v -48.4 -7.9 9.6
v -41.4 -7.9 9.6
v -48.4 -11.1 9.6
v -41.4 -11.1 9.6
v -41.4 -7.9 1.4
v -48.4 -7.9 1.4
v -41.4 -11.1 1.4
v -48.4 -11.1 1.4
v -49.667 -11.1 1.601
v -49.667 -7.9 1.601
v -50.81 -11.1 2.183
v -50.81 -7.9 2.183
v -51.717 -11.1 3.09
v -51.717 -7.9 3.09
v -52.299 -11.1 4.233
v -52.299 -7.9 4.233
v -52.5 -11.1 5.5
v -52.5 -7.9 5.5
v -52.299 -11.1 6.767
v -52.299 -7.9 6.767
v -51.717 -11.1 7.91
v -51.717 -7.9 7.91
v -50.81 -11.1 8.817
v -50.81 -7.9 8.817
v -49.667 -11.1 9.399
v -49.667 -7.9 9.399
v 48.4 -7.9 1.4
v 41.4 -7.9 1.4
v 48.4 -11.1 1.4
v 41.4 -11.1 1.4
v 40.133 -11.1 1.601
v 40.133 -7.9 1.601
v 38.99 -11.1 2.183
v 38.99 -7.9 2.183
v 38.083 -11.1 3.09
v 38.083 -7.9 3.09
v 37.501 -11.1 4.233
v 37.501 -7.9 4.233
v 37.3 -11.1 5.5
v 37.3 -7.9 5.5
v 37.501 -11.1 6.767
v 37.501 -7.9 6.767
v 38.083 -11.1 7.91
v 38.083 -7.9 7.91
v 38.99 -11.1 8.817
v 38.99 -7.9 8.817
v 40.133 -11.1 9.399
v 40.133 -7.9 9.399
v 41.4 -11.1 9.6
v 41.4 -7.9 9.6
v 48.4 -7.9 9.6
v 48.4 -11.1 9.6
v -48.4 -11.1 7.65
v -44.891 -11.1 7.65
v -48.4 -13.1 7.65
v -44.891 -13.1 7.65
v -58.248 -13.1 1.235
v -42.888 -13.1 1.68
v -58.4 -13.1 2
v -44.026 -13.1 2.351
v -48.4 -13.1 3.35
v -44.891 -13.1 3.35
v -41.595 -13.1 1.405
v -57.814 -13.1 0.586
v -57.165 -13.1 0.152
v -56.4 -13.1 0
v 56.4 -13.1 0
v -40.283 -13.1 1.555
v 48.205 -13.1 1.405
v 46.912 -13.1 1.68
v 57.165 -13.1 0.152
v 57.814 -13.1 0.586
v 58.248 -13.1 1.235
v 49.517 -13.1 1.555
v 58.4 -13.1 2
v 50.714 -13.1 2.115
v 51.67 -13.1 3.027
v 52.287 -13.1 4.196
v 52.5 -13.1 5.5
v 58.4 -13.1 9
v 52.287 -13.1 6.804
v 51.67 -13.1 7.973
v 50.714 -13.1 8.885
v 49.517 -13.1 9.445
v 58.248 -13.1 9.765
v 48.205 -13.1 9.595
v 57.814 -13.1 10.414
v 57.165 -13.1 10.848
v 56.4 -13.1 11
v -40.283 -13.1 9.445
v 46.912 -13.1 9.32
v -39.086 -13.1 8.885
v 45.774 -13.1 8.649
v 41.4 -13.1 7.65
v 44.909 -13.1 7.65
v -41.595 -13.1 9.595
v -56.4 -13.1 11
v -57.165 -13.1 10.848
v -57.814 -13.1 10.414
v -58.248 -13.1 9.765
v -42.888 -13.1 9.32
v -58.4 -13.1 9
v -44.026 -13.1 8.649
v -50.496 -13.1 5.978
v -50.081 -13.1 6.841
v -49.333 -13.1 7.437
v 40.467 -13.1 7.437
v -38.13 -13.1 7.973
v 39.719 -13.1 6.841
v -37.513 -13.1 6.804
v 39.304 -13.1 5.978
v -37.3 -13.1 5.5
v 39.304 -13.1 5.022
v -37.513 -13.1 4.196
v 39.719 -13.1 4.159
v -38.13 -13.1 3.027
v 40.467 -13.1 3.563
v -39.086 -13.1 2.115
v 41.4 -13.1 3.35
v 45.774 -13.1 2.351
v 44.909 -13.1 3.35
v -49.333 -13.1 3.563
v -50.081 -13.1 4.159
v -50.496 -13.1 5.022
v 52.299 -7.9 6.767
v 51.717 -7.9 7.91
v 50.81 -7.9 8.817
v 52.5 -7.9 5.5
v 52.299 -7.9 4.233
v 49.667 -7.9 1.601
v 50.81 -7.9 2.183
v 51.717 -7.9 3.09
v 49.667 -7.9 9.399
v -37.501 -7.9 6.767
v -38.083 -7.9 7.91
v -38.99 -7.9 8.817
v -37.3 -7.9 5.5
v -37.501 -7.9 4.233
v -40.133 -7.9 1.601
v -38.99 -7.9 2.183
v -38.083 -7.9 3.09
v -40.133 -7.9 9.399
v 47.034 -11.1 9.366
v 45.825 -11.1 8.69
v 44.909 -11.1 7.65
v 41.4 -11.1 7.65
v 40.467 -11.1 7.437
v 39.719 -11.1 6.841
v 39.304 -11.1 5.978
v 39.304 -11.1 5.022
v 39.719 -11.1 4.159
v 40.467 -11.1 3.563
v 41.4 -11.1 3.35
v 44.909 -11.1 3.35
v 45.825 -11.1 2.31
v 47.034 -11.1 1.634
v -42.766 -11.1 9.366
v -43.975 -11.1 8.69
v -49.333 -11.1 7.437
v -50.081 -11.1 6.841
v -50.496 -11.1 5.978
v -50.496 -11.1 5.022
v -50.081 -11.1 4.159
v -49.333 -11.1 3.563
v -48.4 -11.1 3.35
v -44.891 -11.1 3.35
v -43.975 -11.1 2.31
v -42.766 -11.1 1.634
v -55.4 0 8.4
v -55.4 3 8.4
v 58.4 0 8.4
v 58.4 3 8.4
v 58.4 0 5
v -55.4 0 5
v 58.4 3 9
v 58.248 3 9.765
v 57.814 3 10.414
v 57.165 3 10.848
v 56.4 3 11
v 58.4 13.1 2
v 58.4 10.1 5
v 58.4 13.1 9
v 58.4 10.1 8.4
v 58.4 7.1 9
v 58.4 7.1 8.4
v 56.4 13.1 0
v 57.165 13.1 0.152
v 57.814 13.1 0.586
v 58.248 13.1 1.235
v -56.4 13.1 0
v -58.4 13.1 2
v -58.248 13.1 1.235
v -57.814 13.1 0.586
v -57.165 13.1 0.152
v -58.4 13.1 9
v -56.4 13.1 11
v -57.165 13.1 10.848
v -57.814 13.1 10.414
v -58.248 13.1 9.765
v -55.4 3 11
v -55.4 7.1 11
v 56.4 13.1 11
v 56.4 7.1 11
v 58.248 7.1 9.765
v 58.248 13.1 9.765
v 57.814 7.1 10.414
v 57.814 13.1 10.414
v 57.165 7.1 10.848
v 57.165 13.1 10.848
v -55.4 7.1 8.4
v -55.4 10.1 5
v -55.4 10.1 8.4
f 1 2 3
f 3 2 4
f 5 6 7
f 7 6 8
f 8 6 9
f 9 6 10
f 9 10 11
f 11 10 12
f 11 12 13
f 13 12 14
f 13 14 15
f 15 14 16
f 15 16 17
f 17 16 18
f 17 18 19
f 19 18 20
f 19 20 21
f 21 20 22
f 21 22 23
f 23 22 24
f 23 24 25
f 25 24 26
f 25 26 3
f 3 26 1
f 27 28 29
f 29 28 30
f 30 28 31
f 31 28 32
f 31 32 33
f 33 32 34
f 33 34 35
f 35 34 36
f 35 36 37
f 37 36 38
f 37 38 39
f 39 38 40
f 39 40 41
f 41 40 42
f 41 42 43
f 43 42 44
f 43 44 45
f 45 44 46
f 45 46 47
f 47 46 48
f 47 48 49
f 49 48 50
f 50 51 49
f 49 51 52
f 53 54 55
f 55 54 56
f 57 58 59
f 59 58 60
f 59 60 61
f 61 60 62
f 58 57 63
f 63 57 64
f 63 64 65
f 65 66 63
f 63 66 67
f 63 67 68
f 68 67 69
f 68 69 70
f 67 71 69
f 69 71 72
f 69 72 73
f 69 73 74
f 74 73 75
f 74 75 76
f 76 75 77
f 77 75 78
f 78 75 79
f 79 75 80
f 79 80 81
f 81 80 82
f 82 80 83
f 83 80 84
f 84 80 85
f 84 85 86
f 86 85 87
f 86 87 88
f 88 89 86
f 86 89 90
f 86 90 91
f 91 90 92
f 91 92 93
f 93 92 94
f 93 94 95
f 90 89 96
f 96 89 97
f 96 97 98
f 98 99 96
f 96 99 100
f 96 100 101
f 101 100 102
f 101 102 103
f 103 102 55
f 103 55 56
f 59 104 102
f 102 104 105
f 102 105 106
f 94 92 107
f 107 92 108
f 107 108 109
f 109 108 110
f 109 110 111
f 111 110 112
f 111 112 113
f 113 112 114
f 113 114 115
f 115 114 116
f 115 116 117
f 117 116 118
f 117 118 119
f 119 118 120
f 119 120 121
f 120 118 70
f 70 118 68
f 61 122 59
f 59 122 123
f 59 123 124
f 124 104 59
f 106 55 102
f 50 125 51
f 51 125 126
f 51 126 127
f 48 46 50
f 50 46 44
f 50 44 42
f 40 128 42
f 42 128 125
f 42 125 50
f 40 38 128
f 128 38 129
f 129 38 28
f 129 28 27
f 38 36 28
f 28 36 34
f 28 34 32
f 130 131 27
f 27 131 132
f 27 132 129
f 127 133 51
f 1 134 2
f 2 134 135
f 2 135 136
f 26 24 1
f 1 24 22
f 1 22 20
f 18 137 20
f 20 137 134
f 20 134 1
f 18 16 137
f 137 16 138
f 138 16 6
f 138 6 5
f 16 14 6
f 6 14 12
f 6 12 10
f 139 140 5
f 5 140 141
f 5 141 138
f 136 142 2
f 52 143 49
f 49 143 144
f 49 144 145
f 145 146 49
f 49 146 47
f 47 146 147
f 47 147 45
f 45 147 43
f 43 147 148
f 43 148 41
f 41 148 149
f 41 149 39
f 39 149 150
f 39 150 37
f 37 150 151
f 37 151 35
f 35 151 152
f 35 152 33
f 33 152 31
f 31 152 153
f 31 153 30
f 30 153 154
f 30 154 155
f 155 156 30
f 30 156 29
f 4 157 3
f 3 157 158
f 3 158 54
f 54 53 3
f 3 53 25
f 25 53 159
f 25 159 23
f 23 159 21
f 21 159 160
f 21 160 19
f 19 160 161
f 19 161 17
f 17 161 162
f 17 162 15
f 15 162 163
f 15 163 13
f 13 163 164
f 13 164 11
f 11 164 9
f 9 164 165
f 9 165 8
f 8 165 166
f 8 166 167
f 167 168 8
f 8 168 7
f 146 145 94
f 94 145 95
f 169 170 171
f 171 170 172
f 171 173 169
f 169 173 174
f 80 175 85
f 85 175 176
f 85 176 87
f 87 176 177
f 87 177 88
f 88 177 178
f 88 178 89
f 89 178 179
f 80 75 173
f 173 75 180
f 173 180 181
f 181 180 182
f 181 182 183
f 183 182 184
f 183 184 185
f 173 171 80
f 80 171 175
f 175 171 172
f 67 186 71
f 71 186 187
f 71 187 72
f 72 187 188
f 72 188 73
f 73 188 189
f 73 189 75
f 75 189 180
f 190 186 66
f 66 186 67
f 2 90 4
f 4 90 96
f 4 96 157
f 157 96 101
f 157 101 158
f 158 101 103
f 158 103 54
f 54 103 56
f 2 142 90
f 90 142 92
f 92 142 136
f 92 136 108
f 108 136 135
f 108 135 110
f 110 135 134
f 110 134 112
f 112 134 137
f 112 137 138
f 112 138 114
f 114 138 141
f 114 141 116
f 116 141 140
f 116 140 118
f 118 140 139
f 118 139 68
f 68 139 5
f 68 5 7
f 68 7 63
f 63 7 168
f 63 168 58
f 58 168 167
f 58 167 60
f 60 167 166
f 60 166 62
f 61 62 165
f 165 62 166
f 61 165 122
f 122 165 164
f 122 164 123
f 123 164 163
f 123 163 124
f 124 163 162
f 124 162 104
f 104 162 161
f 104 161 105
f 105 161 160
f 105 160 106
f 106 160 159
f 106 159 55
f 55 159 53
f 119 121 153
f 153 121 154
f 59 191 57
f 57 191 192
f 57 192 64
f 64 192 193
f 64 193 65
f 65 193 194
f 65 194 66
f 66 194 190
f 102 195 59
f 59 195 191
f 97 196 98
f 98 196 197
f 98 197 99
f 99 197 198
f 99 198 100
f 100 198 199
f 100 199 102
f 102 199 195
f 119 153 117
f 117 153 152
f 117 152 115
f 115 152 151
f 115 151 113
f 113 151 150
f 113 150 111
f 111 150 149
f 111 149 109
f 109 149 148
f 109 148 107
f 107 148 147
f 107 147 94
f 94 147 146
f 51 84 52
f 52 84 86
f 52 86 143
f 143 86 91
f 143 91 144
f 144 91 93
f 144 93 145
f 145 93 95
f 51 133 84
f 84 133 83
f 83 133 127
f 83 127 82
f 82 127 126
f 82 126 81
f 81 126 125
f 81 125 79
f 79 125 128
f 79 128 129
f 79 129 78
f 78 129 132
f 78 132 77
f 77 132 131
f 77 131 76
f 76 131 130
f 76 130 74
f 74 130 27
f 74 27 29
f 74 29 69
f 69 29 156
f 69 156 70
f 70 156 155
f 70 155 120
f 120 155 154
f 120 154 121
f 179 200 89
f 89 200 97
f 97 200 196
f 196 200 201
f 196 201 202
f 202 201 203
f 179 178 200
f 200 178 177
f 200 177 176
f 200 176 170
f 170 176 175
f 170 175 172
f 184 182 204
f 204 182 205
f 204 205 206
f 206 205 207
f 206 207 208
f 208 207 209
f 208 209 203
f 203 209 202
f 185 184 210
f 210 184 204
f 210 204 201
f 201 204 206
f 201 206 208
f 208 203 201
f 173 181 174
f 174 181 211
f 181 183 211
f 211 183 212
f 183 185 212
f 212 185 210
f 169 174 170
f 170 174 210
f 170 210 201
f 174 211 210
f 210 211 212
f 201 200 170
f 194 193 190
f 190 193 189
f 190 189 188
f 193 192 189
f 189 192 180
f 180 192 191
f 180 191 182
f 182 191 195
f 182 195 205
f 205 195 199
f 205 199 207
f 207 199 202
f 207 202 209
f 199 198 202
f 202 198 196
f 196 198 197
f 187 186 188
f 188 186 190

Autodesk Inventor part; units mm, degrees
ref_plane "YZ Plane" through (0, 0, 0) normal (1, 0, 0) x (0, 1, 0)
ref_plane "XZ Plane" through (0, 0, 0) normal (0, 1, 0) x (-1, 0, 0)
ref_plane "XY Plane" through (0, 0, 0) normal (0, 0, 1) x (1, 0, 0)
sketch "Sketch1" plane through (0, 0, 0) normal (0, 0, 1) x (1, 0, 0)
  line L0 (58.4, 13.1) -> (-58.4, 13.1)
  line L1 (-58.4, 13.1) -> (-58.4, -13.1)
  line L2 (-58.4, -13.1) -> (58.4, -13.1)
  line L3 (58.4, -13.1) -> (58.4, 13.1)
  line L4 (58.4, 13.1) -> (-58.4, -13.1) construction
  line L5 (-58.4, 13.1) -> (58.4, -13.1) construction
  point P0 (0, 0)
  dimension "d0" = 116.8
  dimension "d1" = 26.2
extrude "Extrusion1" add sketch "Sketch1" along normal blind 11
sketch "Sketch2" plane through (58.4, -13.1, 0) normal (1, 0, 0) x (0, 0, -1)
  line L0 (0, 0) -> (0, 26.2) projected
  line L1 (0, 26.2) -> (-11, 26.2) projected
  line L2 (-11, 0) -> (-11, 26.2) projected
  line L3 (0, 0) -> (-11, 0) projected
  line L4 (-11, 26.2) -> (-11, 0) projected
  line L5 (-11, 26.2) -> (-5, 26.2)
  line L6 (-5, 26.2) -> (-5, 23.2)
  line L7 (-5, 23.2) -> (-11, 23.2)
  line L8 (-11, 23.2) -> (-11, 26.2)
  line L9 (-11, 23.2) -> (-8.4, 23.2)
  line L10 (-8.4, 23.2) -> (-8.4, 20.2)
  line L11 (-8.4, 20.2) -> (-11, 20.2)
  line L12 (-11, 20.2) -> (-11, 23.2)
  line L13 (-11, 26.2) -> (-5, 26.2)
  line L14 (-5, 26.2) -> (-5, 10.1)
  line L15 (-5, 10.1) -> (-11, 10.1)
  line L16 (-11, 10.1) -> (-11, 26.2)
  line L17 (-11, 10.1) -> (-5, 10.1)
  line L18 (-5, 10.1) -> (-5, 13.1)
  line L19 (-5, 13.1) -> (-11, 13.1)
  line L20 (-11, 13.1) -> (-11, 10.1)
  line L21 (-11, 13.1) -> (-8.4, 13.1)
  line L22 (-8.4, 13.1) -> (-8.4, 16.1)
  line L23 (-8.4, 16.1) -> (-11, 16.1)
  line L24 (-11, 16.1) -> (-11, 13.1)
  point P0 (0, 13.1)
  point P1 (-11, 16.1)
  point P2 (-11, 20.2)
  dimension "d4" = 6
  dimension "d5" = 3
  dimension "d6" = 2.6
  dimension "d7" = 3
  dimension "d8" = 16.1
  dimension "d9" = 3
  dimension "d10" = 2.6
  dimension "d11" = 3
extrude "Extrusion2" cut sketch "Sketch2" against normal blind 113.8 contours L14 L19 L22 L23 L2 L11 L10 L7
fillet "Fillet1" radius 2 5 edges at (58.4, 10.1, 11) (58.4, -5.05, 11) (-58.4, 0, 11) (58.4, 0, 0) (-58.4, 0, 0)
sketch "Sketch4" plane through (-56.4, -13.1, 0) normal (0, -1, 0) x (1, 0, 0)
  arc A0 (-2, 2) -> (0, 0) centre (0, 2) ccw projected
  line L0 (0, 0) -> (112.8, 0) projected
  arc A1 (112.8, 0) -> (114.8, 2) centre (112.8, 2) ccw projected
  line L1 (114.8, 2) -> (114.8, 9) projected
  arc A2 (114.8, 9) -> (112.8, 11) centre (112.8, 9) ccw projected
  line L2 (0, 11) -> (112.8, 11) projected
  arc A3 (0, 11) -> (-2, 9) centre (0, 9) ccw projected
  line L3 (-2, 2) -> (-2, 9) projected
  circle A4 centre (104.8, 5.5) radius 4.1
  circle A5 centre (97.8, 5.5) radius 2.15
  line L4 (97.8, 7.65) -> (101.3089, 7.65)
  line L5 (97.8, 3.35) -> (101.3089, 3.35)
  circle A6 centre (15, 5.5) radius 4.1
  circle A7 centre (8, 5.5) radius 2.15
  line L6 (8, 3.35) -> (11.5089, 3.35)
  line L7 (8, 7.65) -> (11.5089, 7.65)
  point P0 (56.4, 0)
  point P1 (114.8, 5.5)
  point P2 (12.2407, 8.5325)
  point P3 (8.4381, 3.3951)
  point P4 (11.1965, 3.9692)
  point P5 (-2, 5.5)
  dimension "d19" = 8.2
  dimension "d20" = 4.3
  dimension "d21" = 7
  dimension "d22" = 0
  dimension "d23" = 10
  dimension "d24" = 8.2
  dimension "d25" = 4.3
  dimension "d26" = 7
  dimension "d27" = 10
  dimension "d28" = 0
  dimension "d40" = 0
extrude "Extrusion4" cut sketch "Sketch4" against normal blind 5.2 contours A4 | A4 L5 A5 L4 | A5 | A6 | A6 L6 A7 L7 | A7
sketch "Sketch5" plane through (-56.4, -13.1, 0) normal (0, -1, 0) x (1, 0, 0)
  arc A0 (8, 7.65) -> (8, 3.35) centre (8, 5.5) ccw projected
  arc A1 (11.5089, 3.35) -> (11.5089, 7.65) centre (15, 5.5) ccw projected
  arc A2 (97.8, 7.65) -> (97.8, 3.35) centre (97.8, 5.5) ccw projected
  line L0 (97.8, 7.65) -> (101.3089, 7.65) projected
  arc A3 (101.3089, 3.35) -> (101.3089, 7.65) centre (104.8, 5.5) ccw projected
  line L1 (101.3089, 3.35) -> (97.8, 3.35) projected
  arc A4 (-2, 2) -> (0, 0) centre (0, 2) ccw projected
  line L2 (0, 0) -> (112.8, 0) projected
  arc A5 (112.8, 0) -> (114.8, 2) centre (112.8, 2) ccw projected
  line L3 (114.8, 2) -> (114.8, 9) projected
  arc A6 (114.8, 9) -> (112.8, 11) centre (112.8, 9) ccw projected
  line L4 (0, 11) -> (112.8, 11) projected
  arc A7 (0, 11) -> (-2, 9) centre (0, 9) ccw projected
  line L5 (-2, 2) -> (-2, 9) projected
  circle A8 centre (8, 5.5) radius 4.1
  line L6 (8, 9.6) -> (15, 9.6)
  line L7 (8, 1.4) -> (15, 1.4)
  arc A9 (11.5089, 3.35) -> (11.5089, 7.65) centre (15, 5.5) ccw projected
  circle A10 centre (97.8, 5.5) radius 4.1
  line L8 (97.8, 9.6) -> (104.8, 9.6)
  line L9 (104.8, 1.4) -> (97.8, 1.4)
  line L10 (8, 7.65) -> (11.5089, 7.65) projected
  line L11 (11.5089, 3.35) -> (8, 3.35) projected
  arc A11 (8, 7.65) -> (8, 3.35) centre (8, 5.5) ccw projected
  point P0 (56.4, 0)
  point P1 (19.1, 5.5)
  point P2 (19.1, 5.5)
  point P3 (5.85, 5.5)
  point P4 (95.65, 5.5)
  point P5 (12.4867, 2.2607)
  point P6 (12.4867, 8.7393)
  point P7 (96.275, 2.2698)
  point P8 (96.275, 8.7302)
  point P9 (5.85, 5.5)
  point P10 (101.2911, 7.65)
  point P11 (101.2911, 3.35)
  point P12 (11.4911, 3.35)
  point P13 (11.4911, 7.65)
  dimension "d32" = 8.2
  dimension "d33" = 0
  dimension "d35" = 8.2
  dimension "d36" = 0
  dimension "d42" = 0
  dimension "d43" = 0
extrude "Extrusion5" cut sketch "Sketch5" along normal blind 3.2 from surface at -5.2 contours L10 A8 L11 A0 | A0 L11 A8 L10 | A8 L6 A1 L10 | L11 A1 L7 A8 | L0 A10 L1 A2 | A2 L1 A10 L0 | A10 L8 A3 L0 | L1 A3 L9 A10
properties part number "module-slot" material "PC/ABS Plastic"
